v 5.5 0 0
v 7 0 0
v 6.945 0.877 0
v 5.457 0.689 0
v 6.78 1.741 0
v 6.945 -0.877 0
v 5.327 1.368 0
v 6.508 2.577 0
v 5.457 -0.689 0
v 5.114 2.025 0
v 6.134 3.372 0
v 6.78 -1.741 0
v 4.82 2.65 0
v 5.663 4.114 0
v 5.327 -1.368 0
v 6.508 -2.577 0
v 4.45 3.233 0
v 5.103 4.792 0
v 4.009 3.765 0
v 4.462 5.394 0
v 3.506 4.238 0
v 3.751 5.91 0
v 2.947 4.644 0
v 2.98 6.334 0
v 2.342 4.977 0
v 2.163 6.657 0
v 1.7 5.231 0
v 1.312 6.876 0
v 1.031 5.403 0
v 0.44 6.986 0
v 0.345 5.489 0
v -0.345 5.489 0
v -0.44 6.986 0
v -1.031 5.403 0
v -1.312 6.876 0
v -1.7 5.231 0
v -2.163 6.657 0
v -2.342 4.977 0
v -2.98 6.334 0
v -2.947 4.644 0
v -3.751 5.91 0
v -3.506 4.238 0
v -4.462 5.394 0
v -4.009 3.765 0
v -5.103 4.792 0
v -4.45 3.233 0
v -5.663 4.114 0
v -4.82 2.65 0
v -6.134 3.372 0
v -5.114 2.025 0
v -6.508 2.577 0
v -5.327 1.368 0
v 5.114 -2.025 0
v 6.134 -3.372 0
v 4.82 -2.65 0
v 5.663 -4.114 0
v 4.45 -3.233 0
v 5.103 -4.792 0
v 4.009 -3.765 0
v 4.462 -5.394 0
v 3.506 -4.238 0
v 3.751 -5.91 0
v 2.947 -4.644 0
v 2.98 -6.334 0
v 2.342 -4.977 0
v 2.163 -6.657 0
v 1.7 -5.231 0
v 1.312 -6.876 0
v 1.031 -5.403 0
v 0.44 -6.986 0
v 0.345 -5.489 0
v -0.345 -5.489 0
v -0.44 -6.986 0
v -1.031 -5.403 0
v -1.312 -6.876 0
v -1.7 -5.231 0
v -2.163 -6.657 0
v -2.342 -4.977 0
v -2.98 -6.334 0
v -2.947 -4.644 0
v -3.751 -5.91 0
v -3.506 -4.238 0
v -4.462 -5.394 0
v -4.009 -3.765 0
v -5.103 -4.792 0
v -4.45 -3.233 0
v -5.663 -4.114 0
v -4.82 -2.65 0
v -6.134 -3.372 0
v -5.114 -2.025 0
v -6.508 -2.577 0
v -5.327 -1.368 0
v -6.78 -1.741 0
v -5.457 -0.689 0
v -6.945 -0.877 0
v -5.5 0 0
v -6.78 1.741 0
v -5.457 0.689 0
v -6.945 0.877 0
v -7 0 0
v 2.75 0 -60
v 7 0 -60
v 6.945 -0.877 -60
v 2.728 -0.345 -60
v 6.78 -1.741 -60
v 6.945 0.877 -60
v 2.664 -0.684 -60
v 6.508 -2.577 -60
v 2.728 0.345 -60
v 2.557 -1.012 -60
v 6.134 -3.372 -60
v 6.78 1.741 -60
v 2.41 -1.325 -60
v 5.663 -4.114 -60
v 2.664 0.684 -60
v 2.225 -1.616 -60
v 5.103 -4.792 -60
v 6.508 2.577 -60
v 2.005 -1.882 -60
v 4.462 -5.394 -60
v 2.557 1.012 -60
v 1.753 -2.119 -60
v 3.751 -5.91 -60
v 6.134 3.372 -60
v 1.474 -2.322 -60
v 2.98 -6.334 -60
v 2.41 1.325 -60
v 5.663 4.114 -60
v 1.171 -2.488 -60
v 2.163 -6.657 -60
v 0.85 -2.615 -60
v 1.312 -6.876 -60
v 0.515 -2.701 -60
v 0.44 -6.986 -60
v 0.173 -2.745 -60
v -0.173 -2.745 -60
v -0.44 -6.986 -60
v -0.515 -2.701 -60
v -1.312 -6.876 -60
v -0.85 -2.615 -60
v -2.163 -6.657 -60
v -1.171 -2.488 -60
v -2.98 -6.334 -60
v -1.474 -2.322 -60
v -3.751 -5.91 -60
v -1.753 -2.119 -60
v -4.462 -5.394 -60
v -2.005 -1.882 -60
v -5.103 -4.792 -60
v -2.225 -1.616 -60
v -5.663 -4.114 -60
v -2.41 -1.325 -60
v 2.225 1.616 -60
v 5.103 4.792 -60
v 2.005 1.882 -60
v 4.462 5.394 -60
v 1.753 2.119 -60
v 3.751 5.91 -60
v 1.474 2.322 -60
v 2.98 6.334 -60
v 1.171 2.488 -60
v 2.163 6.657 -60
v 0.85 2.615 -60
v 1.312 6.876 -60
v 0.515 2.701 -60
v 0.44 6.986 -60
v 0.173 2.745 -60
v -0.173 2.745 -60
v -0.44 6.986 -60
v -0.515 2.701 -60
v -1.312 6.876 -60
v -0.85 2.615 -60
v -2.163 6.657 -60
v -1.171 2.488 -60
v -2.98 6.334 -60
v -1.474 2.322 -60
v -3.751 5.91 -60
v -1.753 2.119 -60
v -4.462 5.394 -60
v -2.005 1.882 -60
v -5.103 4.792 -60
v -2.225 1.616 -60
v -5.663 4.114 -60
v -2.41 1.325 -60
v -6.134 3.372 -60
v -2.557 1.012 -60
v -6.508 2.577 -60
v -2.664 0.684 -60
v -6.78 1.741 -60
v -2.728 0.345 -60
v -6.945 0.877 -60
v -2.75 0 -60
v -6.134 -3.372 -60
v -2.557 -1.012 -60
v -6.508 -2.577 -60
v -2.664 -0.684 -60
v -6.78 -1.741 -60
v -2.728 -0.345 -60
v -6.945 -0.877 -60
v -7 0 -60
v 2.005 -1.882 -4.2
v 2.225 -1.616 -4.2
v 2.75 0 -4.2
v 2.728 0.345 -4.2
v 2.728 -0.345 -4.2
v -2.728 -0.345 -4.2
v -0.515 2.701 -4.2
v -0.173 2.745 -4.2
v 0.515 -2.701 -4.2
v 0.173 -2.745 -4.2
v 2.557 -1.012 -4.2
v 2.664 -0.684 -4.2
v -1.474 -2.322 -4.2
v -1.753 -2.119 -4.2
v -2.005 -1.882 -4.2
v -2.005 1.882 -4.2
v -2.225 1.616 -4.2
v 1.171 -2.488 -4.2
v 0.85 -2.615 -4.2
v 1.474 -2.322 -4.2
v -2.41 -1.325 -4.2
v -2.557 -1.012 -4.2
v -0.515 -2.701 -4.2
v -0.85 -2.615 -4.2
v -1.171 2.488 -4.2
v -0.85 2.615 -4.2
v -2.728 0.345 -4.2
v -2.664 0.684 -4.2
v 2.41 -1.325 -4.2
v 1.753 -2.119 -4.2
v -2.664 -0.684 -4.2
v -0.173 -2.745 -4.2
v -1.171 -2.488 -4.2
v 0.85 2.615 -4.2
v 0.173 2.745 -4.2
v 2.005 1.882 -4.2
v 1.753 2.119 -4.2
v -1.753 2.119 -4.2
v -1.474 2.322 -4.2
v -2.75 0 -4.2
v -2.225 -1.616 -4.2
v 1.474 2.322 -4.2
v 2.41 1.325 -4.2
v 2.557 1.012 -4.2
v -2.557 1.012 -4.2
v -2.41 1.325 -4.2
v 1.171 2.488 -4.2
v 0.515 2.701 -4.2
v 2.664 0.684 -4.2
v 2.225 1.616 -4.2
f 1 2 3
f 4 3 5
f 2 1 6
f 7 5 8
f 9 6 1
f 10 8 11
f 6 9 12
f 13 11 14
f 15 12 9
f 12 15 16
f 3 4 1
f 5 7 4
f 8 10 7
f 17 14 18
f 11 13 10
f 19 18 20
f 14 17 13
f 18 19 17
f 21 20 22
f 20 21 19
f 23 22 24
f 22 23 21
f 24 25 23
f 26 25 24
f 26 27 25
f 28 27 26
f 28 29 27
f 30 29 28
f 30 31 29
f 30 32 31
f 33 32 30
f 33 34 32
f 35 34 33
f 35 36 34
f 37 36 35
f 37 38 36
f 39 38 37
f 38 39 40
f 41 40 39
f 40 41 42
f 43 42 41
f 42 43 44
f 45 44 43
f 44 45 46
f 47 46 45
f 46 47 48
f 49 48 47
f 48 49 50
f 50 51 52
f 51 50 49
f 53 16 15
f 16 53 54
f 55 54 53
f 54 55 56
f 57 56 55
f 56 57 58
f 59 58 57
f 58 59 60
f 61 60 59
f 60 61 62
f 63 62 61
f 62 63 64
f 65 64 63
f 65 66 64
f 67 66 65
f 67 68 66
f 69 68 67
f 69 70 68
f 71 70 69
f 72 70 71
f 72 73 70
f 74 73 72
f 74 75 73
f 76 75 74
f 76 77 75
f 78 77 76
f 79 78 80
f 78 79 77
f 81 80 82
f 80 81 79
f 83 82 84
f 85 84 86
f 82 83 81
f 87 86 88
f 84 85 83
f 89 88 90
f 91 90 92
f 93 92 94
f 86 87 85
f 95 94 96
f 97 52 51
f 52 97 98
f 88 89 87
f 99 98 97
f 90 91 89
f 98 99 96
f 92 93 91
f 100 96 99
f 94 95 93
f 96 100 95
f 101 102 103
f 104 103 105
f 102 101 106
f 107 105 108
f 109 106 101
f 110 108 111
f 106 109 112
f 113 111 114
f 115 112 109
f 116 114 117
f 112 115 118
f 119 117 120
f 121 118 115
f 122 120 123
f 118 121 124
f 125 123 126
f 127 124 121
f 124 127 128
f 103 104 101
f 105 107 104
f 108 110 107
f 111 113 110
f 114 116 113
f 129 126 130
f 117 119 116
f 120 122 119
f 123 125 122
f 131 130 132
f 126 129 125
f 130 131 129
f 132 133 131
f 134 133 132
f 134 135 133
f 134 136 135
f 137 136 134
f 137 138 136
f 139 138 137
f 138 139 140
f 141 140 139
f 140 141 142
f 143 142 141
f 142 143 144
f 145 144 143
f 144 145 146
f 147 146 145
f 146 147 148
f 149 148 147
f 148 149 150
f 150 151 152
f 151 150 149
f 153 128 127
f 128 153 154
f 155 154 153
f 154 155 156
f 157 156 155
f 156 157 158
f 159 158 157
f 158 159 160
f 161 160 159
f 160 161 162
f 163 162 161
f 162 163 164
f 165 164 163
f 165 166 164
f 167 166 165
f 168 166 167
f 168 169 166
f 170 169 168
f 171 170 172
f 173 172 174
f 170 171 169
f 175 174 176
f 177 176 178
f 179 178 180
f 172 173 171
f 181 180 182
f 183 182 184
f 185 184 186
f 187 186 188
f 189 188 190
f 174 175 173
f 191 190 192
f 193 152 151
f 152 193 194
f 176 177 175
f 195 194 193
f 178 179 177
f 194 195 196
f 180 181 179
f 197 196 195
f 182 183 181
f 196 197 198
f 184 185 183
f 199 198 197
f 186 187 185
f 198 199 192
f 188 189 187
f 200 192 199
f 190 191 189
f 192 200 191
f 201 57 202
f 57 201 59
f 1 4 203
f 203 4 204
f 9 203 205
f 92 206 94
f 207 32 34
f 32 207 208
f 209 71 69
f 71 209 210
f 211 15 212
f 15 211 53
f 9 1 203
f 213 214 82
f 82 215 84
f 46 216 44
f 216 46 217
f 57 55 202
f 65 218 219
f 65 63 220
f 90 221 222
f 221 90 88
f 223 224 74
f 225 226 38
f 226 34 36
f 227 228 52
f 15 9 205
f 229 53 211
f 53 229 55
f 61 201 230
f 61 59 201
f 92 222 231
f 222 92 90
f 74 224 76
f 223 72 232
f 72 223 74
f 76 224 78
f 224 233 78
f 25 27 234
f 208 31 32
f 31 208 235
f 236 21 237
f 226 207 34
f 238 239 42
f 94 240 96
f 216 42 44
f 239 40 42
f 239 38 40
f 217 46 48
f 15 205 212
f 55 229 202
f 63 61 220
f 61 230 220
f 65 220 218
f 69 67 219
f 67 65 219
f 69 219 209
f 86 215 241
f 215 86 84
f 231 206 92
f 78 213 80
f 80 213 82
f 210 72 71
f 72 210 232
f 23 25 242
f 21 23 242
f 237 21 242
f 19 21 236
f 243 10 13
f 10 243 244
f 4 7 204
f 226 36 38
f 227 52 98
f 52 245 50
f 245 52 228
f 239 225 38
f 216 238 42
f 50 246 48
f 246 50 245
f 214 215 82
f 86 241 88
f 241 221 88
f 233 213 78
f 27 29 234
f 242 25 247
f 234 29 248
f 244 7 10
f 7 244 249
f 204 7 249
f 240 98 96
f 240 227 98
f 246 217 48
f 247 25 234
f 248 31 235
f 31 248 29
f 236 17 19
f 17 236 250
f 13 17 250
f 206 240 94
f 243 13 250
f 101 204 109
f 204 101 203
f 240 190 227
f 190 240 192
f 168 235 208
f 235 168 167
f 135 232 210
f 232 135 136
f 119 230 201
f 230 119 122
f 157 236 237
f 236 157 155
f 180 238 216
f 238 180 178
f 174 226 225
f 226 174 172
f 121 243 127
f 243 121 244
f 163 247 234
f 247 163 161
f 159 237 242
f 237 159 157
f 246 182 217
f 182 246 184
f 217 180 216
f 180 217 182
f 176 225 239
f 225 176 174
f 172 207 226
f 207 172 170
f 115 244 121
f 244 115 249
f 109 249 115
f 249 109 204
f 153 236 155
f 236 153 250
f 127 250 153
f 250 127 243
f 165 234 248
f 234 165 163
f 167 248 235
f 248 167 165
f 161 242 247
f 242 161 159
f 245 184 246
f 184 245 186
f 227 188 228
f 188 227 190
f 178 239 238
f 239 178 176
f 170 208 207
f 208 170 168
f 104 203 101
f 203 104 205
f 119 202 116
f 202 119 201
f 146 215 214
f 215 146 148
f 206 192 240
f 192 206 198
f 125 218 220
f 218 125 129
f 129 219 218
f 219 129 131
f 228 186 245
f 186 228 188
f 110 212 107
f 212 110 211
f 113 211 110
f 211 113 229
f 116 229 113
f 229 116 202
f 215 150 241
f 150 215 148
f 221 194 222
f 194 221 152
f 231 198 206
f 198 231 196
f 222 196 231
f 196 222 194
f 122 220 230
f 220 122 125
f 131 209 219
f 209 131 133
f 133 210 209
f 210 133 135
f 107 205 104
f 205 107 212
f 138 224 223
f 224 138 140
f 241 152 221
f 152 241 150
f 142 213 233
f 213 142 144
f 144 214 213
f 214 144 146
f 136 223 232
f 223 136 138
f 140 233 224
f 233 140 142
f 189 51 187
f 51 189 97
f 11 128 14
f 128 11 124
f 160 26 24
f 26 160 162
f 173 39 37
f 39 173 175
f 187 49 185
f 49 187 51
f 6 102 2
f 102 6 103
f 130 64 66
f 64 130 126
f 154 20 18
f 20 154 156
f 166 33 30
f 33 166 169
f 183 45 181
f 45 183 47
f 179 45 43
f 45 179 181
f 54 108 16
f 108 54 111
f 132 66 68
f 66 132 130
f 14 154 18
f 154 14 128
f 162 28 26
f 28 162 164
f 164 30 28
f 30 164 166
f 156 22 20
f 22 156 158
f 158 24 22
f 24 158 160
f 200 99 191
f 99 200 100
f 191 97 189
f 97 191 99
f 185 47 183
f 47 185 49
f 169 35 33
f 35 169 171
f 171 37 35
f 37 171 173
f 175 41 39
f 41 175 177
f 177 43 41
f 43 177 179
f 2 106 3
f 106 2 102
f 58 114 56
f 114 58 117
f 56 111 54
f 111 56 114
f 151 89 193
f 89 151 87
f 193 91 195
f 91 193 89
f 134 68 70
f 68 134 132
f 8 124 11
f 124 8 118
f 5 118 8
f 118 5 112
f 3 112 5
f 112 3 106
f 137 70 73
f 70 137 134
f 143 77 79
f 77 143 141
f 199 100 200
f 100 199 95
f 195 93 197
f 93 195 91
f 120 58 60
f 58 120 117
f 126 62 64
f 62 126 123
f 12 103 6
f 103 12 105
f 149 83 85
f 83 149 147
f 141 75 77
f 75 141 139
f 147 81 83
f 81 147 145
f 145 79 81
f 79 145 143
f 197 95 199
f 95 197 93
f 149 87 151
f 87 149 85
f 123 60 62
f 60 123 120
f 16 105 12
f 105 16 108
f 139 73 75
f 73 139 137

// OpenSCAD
$fn = 50;


difference() {
	union() {
		translate(v = [0, 0, -60.0000000000]) {
			cylinder(h = 60, r = 7.0000000000);
		}
	}
	union() {
		translate(v = [0, 0, 0]) {
			rotate(a = [0, 0, 0]) {
				difference() {
					union() {
						#translate(v = [0, 0, -60.0000000000]) {
							cylinder(h = 60, r = 2.2500000000);
						}
						#translate(v = [0, 0, -4.2000000000]) {
							cylinder(h = 4.2000000000, r = 7.0000000000, r1 = 2.7500000000, r2 = 5.5000000000);
						}
						#translate(v = [0, 0, -60.0000000000]) {
							cylinder(h = 60, r = 2.7500000000);
						}
						#translate(v = [0, 0, -60.0000000000]) {
							cylinder(h = 60, r = 2.2500000000);
						}
					}
					union();
				}
			}
		}
	}
}
